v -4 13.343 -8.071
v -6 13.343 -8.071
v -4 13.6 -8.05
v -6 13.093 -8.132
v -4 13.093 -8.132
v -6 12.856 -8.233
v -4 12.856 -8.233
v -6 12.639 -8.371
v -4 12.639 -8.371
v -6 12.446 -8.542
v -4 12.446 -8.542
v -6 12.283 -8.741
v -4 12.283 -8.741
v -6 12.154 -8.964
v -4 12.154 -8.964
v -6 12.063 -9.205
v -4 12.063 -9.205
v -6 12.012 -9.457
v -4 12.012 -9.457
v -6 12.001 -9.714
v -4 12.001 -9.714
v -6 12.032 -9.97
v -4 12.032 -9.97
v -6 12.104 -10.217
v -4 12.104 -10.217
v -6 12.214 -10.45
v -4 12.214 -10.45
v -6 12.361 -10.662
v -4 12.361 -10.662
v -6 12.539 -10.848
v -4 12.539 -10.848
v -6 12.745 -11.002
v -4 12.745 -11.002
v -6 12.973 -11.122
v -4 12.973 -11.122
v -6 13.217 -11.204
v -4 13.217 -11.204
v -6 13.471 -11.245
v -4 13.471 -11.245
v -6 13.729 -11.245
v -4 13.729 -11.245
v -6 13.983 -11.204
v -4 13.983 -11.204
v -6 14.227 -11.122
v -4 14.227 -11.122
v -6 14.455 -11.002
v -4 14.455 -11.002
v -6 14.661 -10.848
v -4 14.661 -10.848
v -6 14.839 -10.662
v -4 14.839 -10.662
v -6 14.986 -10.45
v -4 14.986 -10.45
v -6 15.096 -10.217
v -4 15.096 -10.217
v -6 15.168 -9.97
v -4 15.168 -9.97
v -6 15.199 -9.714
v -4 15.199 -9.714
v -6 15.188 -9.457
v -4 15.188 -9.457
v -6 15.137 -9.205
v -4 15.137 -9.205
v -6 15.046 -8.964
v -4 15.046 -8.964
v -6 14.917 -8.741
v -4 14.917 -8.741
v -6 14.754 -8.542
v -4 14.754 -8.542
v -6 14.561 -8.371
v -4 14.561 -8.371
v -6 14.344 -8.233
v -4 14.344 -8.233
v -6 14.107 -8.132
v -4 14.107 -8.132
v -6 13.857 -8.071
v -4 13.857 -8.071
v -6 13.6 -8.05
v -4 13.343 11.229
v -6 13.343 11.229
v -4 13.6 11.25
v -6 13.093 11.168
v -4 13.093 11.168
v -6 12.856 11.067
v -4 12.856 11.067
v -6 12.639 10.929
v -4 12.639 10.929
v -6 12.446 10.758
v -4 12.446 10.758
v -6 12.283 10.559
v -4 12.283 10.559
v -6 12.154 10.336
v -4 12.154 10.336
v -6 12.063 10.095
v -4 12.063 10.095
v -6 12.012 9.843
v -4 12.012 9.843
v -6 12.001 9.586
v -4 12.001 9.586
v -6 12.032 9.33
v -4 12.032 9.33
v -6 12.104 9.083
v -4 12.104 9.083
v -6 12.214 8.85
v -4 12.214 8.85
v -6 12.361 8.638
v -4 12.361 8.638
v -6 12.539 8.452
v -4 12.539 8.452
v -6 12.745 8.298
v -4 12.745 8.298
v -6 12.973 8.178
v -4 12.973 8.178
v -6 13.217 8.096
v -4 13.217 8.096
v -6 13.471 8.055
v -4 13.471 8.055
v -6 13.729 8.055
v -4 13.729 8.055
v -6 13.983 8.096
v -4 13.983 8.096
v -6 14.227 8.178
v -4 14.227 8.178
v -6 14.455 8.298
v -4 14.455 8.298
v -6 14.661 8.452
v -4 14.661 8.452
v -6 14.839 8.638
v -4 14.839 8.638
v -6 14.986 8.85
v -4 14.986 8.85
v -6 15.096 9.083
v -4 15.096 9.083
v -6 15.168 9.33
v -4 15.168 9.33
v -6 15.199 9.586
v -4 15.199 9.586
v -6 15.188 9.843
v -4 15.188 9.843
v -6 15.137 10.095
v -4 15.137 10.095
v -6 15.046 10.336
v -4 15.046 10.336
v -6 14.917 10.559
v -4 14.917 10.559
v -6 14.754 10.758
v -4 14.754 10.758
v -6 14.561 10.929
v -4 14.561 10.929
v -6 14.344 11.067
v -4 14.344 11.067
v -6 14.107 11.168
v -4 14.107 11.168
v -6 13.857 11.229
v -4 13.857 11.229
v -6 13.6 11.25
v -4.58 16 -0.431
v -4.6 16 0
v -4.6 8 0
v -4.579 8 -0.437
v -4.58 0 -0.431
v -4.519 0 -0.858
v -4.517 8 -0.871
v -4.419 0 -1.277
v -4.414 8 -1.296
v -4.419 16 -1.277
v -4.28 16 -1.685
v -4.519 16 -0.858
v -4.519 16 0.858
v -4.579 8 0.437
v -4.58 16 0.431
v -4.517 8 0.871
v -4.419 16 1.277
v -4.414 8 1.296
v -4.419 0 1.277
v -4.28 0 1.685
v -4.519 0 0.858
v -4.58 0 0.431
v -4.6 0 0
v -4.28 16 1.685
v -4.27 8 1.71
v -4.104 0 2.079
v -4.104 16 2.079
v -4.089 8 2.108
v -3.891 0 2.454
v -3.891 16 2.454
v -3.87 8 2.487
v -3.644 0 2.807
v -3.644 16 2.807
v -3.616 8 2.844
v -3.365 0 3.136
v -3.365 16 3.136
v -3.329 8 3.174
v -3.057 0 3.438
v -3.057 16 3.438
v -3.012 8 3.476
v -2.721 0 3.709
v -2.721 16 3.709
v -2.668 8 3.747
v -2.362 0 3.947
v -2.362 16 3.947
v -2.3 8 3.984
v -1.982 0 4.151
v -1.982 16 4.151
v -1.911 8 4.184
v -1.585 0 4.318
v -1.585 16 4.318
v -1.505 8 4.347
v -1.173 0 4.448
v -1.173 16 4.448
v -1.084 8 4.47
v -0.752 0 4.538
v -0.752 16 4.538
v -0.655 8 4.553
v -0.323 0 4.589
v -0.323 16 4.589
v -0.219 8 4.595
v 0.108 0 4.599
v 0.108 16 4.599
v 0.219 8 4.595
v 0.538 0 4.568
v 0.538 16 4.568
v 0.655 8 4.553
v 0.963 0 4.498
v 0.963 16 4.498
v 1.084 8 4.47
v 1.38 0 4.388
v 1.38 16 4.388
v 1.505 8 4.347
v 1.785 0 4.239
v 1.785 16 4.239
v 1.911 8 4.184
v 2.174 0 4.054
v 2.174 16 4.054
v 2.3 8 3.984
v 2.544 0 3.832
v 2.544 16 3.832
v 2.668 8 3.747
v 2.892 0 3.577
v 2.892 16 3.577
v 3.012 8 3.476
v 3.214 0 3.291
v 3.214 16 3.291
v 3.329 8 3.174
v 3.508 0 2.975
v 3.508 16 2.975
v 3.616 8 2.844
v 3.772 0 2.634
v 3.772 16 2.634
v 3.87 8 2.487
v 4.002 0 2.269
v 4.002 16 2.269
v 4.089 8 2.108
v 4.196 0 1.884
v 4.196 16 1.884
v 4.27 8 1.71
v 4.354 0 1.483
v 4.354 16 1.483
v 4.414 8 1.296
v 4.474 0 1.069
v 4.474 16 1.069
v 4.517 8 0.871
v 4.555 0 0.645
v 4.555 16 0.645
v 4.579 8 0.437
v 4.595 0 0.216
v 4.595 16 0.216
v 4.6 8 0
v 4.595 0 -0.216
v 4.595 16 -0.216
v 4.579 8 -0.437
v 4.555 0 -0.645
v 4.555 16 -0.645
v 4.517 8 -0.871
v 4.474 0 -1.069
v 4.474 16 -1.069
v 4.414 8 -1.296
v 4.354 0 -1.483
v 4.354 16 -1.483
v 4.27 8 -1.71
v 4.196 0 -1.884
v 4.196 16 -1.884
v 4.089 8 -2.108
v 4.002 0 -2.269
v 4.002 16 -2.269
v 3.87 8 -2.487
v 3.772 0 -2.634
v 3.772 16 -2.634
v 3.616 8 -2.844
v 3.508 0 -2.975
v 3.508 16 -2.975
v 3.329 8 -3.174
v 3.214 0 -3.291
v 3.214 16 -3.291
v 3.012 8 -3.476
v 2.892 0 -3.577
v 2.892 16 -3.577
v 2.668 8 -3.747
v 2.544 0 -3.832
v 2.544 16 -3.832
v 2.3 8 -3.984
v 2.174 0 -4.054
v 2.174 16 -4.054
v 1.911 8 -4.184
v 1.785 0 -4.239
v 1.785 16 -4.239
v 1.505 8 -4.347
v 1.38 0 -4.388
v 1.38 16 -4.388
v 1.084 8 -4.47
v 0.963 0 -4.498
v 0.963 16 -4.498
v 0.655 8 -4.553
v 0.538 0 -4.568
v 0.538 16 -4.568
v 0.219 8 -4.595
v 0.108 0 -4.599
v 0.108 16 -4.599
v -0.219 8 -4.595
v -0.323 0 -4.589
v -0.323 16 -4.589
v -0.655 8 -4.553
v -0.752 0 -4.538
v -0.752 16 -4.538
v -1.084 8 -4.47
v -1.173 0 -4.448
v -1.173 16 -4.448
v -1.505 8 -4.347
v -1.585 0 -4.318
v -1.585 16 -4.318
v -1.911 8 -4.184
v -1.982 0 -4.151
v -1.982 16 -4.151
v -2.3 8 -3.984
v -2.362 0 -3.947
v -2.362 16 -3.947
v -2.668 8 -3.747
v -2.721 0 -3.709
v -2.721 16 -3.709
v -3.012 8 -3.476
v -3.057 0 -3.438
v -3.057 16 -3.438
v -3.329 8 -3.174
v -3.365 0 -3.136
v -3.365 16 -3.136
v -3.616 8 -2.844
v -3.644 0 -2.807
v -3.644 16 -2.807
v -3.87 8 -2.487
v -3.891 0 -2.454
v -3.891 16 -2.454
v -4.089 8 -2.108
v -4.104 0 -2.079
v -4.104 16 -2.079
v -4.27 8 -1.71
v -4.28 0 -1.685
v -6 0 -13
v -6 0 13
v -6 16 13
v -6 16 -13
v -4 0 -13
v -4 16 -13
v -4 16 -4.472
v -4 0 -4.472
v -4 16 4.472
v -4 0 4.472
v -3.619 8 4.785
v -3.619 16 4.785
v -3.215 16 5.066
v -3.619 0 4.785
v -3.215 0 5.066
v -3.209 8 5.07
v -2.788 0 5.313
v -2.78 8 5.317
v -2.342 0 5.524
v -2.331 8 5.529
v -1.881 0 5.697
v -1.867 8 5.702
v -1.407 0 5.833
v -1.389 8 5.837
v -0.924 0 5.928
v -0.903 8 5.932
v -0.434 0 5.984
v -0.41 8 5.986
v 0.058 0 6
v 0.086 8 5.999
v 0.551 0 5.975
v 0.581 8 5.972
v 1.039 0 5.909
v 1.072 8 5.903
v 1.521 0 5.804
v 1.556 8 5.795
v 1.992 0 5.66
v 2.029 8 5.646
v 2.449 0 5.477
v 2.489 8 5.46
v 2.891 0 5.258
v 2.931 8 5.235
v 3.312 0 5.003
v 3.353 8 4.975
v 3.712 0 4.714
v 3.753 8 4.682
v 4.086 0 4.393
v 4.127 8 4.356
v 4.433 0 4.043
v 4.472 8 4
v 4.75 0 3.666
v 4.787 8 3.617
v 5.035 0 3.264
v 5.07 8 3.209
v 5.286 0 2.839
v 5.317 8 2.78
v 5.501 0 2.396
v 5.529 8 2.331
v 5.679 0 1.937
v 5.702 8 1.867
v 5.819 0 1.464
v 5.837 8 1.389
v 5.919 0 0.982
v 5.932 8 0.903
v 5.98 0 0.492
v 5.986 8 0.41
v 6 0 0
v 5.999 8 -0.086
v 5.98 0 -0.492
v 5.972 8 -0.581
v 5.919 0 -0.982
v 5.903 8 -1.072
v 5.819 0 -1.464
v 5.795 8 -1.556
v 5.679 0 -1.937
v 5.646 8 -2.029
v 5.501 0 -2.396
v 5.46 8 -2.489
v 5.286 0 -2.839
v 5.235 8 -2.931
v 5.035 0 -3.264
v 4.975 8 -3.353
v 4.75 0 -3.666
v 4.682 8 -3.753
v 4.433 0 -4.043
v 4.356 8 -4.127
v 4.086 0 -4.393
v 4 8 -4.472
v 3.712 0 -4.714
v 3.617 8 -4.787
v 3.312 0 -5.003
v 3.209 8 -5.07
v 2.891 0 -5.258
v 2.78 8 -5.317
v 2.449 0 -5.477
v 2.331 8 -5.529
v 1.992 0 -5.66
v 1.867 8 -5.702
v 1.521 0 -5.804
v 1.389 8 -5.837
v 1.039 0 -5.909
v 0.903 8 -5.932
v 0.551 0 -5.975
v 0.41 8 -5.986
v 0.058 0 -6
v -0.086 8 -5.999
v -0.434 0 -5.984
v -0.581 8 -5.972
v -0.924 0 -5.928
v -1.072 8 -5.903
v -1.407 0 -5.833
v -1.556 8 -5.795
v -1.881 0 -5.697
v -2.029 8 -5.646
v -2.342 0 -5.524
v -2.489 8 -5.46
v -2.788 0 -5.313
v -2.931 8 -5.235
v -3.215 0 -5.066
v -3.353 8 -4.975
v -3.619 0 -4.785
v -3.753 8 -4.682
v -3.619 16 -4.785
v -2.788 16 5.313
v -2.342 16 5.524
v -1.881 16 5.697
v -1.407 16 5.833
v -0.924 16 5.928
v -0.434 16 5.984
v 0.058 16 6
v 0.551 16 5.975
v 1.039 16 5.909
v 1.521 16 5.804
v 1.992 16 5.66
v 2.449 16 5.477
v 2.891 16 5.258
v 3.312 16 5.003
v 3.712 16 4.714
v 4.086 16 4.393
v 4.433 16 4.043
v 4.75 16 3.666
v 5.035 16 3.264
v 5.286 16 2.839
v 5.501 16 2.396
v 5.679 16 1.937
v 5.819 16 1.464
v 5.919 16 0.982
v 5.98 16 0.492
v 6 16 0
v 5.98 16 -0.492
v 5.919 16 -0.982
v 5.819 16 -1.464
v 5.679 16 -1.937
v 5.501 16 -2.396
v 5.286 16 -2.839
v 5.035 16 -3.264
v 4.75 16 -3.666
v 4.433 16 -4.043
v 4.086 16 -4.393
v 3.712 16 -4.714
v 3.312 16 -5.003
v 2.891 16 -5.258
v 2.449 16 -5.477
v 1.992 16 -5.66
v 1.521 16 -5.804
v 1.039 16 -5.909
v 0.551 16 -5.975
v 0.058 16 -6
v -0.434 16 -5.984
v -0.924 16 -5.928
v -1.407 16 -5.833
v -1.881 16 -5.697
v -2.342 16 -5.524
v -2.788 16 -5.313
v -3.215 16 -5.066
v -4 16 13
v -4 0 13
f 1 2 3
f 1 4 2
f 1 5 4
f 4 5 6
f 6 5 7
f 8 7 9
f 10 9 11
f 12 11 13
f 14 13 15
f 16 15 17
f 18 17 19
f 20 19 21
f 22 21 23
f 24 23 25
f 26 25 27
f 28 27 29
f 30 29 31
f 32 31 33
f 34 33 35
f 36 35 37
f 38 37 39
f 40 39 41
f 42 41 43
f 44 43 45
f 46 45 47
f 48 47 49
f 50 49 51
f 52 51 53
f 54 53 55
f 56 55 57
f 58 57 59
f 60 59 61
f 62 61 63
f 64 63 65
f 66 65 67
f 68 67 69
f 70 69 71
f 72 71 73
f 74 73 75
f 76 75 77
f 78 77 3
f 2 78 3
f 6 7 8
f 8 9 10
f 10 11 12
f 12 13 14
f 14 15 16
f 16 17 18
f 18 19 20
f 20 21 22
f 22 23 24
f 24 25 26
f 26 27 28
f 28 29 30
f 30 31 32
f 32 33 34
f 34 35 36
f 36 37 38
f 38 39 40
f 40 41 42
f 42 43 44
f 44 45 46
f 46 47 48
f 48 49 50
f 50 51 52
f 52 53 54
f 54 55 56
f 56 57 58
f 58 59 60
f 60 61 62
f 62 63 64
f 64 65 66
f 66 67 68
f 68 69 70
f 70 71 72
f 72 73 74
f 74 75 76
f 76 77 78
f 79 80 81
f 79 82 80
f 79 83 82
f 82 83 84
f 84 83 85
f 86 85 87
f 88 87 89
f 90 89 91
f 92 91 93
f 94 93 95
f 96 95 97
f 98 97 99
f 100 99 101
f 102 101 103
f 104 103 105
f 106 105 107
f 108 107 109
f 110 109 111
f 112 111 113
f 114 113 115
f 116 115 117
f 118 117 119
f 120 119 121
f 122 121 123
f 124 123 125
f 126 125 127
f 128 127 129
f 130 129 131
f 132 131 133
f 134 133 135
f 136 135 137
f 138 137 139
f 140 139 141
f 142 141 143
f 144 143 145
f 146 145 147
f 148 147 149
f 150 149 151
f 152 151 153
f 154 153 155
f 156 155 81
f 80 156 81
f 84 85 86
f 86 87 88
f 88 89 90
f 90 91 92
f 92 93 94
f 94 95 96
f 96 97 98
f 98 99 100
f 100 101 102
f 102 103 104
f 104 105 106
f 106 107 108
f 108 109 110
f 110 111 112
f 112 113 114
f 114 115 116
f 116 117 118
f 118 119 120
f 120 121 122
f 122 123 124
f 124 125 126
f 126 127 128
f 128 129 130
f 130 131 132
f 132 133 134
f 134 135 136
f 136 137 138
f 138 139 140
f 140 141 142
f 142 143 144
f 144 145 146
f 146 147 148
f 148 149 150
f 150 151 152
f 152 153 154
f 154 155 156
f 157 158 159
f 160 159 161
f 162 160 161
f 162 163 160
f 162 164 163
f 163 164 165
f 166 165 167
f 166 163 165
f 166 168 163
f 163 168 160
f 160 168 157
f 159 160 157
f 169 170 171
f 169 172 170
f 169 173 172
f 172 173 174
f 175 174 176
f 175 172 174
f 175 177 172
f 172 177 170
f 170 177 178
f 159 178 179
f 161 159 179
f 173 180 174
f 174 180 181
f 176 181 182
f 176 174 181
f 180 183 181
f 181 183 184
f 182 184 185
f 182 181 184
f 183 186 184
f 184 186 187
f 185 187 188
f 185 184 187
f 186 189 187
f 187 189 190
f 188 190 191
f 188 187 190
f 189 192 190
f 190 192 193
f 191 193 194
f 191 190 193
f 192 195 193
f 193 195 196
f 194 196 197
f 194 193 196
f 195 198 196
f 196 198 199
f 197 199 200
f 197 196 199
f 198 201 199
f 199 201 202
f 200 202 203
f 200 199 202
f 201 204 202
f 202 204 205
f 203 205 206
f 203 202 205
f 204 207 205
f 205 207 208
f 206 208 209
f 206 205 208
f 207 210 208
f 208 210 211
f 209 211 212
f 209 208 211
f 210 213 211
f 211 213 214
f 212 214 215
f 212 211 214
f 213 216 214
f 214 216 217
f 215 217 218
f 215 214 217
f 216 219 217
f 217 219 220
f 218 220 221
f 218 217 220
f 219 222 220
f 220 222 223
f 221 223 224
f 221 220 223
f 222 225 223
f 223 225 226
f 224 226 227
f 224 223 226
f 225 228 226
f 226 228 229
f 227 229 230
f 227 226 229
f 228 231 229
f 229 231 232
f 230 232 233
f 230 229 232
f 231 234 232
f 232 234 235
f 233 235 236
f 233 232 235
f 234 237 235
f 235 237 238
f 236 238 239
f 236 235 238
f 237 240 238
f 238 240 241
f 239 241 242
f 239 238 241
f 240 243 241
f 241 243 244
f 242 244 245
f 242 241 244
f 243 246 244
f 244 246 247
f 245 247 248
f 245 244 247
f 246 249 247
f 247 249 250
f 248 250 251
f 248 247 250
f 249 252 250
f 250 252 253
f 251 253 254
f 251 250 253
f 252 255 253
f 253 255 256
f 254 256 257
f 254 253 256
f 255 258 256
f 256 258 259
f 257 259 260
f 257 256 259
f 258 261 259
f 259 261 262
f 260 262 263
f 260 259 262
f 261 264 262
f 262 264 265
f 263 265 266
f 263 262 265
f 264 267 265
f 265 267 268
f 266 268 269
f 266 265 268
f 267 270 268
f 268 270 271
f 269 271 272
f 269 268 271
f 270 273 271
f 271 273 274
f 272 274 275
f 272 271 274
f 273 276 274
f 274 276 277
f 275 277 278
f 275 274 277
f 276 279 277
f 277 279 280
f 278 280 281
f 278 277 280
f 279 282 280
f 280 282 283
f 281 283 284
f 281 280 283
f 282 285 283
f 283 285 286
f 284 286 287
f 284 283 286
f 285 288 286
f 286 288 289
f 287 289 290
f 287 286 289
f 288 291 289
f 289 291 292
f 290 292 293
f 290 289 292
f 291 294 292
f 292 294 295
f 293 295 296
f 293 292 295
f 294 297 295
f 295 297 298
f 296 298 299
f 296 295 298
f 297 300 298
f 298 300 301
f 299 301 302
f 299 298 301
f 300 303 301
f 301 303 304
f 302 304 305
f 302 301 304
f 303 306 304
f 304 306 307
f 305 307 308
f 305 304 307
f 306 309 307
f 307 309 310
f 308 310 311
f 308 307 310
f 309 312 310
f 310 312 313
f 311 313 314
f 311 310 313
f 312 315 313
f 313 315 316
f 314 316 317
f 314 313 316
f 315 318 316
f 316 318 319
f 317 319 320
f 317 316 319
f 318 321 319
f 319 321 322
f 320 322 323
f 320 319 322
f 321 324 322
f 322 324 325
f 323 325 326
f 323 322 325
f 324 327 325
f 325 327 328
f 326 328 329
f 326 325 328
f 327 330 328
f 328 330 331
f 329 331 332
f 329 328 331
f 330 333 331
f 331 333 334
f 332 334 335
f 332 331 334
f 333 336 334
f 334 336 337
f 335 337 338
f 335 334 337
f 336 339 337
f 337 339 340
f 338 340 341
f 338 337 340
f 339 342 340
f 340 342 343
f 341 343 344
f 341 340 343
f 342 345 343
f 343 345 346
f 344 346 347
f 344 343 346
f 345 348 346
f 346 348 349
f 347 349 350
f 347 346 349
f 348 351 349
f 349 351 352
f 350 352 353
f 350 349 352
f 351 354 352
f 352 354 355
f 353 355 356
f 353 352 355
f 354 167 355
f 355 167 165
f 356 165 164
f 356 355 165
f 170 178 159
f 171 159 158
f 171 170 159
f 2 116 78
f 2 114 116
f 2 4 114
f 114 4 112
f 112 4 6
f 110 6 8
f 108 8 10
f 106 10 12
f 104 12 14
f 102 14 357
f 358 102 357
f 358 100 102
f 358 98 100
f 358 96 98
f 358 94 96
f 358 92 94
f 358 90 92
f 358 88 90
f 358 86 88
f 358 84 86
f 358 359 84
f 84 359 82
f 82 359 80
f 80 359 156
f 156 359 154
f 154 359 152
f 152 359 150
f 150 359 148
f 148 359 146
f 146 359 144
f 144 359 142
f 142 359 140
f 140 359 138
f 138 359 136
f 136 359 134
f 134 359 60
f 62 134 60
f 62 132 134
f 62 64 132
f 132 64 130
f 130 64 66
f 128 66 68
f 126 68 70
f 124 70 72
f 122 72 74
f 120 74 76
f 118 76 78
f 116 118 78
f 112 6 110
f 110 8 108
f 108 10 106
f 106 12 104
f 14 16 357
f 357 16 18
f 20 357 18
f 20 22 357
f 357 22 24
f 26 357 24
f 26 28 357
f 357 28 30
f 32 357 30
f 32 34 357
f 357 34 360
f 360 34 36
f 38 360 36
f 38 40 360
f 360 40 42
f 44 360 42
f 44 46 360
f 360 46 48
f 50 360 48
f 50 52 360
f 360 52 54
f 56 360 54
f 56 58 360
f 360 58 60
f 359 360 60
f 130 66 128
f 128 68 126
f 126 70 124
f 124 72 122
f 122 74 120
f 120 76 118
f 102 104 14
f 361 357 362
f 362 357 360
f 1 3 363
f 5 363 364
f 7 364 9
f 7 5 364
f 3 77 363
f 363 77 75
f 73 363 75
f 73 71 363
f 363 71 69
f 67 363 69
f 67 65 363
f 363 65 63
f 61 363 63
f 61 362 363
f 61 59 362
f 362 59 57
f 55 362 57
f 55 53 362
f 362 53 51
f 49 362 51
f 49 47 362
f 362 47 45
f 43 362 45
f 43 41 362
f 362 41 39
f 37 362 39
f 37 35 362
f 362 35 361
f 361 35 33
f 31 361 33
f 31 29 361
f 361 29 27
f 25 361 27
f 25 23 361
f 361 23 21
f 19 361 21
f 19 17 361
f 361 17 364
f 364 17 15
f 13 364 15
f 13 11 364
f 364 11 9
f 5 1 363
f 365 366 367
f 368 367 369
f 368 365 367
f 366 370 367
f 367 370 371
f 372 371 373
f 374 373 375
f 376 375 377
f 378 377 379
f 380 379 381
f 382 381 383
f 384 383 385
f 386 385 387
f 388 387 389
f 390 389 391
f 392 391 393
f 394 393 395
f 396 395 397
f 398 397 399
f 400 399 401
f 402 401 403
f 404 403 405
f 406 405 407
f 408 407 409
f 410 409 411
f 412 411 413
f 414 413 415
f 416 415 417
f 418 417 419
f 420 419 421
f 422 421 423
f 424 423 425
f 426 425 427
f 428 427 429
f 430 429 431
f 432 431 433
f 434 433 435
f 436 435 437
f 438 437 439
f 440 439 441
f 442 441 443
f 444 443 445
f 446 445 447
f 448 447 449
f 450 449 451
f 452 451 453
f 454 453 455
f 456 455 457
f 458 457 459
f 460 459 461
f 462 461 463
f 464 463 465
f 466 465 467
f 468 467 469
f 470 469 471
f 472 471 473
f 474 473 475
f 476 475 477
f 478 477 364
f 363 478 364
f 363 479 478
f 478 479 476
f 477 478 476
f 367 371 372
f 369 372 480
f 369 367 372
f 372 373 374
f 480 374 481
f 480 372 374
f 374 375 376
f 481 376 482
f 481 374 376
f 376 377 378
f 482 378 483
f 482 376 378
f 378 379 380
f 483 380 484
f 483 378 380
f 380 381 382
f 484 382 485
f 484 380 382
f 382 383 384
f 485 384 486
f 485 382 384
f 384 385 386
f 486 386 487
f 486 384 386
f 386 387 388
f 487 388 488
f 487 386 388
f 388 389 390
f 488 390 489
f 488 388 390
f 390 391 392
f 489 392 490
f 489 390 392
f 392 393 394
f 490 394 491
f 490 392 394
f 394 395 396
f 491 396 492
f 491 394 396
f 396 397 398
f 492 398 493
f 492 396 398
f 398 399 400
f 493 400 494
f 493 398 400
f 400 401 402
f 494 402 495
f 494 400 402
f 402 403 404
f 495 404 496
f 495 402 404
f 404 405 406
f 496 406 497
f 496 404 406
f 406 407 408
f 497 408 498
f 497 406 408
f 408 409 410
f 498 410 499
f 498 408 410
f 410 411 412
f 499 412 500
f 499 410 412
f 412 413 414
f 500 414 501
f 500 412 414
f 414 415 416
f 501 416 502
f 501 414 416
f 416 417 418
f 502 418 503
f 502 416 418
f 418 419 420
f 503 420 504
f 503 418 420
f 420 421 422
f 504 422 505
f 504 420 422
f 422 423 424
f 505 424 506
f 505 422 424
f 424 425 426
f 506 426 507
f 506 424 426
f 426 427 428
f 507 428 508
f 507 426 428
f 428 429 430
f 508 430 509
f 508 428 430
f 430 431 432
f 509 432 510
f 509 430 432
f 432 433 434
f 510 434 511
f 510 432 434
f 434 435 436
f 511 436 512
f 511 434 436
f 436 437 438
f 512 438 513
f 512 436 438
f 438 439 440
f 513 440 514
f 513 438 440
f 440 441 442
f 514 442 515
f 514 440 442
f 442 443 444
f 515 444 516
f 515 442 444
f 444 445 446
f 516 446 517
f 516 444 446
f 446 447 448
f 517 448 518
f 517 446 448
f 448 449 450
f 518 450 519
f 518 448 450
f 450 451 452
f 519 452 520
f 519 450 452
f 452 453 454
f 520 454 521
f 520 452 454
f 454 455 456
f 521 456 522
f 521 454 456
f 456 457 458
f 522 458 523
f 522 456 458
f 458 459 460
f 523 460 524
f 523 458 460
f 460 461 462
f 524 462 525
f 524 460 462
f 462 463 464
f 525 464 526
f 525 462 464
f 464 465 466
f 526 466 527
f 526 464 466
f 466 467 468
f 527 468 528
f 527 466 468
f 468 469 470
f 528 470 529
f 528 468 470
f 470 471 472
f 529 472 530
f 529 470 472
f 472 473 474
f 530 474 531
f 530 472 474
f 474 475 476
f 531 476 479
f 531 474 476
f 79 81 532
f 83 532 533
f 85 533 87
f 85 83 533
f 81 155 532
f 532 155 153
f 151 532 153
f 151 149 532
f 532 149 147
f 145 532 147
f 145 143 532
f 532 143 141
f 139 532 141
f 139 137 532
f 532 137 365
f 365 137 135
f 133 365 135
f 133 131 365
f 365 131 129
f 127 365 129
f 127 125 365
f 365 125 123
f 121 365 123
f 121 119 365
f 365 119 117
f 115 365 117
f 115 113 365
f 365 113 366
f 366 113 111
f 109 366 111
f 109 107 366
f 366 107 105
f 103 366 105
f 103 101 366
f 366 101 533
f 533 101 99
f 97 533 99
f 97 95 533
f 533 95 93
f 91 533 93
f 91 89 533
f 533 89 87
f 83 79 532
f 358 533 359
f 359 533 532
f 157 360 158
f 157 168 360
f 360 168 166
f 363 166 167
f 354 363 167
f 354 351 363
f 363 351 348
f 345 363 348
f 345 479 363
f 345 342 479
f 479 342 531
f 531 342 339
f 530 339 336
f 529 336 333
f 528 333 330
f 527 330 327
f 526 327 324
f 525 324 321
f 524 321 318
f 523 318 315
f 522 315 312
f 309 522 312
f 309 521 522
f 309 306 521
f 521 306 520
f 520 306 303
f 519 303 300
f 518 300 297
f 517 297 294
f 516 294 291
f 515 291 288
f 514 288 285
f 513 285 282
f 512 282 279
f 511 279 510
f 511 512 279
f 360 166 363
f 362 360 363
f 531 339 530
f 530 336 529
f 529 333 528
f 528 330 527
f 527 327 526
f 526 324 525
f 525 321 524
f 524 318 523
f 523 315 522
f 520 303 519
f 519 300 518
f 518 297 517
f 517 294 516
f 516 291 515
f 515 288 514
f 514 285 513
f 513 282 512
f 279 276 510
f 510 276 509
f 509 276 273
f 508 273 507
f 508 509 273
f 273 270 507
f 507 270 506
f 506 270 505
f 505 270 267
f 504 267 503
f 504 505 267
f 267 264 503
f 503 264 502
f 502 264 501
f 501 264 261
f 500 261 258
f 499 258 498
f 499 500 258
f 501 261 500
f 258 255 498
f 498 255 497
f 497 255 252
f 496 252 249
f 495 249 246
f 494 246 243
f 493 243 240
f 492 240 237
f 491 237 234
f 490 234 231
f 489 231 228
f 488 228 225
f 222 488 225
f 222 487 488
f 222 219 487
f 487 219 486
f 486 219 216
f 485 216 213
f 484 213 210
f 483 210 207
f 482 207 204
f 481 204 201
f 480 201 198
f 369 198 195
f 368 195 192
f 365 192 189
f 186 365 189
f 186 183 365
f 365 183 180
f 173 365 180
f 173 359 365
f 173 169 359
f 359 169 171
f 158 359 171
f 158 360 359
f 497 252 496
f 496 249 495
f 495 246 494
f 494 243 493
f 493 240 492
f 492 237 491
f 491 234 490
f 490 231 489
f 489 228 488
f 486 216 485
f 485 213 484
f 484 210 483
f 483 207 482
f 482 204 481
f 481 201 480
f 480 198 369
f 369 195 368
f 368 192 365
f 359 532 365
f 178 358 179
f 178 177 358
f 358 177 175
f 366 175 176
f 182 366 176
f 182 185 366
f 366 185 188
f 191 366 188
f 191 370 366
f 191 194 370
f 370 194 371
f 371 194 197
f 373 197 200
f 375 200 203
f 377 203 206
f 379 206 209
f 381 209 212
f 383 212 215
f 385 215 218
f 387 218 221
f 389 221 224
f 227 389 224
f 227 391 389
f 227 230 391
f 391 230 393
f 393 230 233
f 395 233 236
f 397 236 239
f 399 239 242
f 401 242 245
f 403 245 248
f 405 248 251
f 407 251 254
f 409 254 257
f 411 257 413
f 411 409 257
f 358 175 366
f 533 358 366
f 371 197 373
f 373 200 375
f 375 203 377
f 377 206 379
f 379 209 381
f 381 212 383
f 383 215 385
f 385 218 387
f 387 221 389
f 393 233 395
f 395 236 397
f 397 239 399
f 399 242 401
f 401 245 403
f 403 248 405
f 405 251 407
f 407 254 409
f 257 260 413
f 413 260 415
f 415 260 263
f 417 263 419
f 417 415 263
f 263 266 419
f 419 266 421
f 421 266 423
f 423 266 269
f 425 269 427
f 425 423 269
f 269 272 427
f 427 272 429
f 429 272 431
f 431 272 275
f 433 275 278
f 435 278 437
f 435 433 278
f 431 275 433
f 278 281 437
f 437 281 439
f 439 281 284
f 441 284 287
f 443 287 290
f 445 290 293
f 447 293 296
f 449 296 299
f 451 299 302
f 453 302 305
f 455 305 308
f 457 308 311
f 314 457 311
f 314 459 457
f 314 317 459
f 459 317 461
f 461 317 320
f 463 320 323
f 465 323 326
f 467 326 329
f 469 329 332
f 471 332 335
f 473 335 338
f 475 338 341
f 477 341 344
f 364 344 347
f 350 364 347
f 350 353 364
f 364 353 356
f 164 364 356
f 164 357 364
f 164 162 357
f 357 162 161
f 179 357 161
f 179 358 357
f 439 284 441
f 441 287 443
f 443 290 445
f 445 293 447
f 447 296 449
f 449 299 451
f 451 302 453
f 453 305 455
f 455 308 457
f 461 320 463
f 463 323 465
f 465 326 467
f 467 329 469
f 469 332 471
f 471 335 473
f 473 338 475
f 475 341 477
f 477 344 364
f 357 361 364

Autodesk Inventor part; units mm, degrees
ref_plane "YZ Plane" through (0, 0, 0) normal (1, 0, 0) x (0, 1, 0)
ref_plane "XZ Plane" through (0, 0, 0) normal (0, 1, 0) x (-1, 0, 0)
ref_plane "XY Plane" through (0, 0, 0) normal (0, 0, 1) x (1, 0, 0)
sketch "Sketch1" plane through (0, 0, 0) normal (0, 1, 0) x (-1, 0, 0)
  circle A0 centre (0, 0) radius 4.6
  line L0 (6, 13) -> (4, 13)
  line L1 (6, -13) -> (4, -13)
  arc A1 (4, 4.4721) -> (4, -4.4721) centre (0, 0) ccw
  line L2 (4, 13) -> (4, 4.4721)
  line L3 (4, -4.4721) -> (4, -13)
  line L4 (6, 13) -> (6, -13)
  dimension "d0" = 9.2
  dimension "d2" = 26
  dimension "d3" = 2
extrude "Extrusion1" add sketch "Sketch1" along normal blind 16
sketch "Sketch2" plane through (-6, 0, -13) normal (-1, 0, 0) x (0, 0, 1)
  circle A0 centre (3.35, 13.6) radius 1.6
  circle A1 centre (22.65, 13.6) radius 1.6
  line L0 (8.5279, 16) -> (0, 16) projected
  line L1 (0, 16) -> (26, 16) projected
  point P0 (13, 0)
  dimension "d10" = 3.2
  dimension "d11" = 3.2
  dimension "d14" = 2.4
  dimension "d15" = 2.4
extrude "Extrusion2" cut sketch "Sketch2" against normal blind 16
properties part number "Support endStop v2"
